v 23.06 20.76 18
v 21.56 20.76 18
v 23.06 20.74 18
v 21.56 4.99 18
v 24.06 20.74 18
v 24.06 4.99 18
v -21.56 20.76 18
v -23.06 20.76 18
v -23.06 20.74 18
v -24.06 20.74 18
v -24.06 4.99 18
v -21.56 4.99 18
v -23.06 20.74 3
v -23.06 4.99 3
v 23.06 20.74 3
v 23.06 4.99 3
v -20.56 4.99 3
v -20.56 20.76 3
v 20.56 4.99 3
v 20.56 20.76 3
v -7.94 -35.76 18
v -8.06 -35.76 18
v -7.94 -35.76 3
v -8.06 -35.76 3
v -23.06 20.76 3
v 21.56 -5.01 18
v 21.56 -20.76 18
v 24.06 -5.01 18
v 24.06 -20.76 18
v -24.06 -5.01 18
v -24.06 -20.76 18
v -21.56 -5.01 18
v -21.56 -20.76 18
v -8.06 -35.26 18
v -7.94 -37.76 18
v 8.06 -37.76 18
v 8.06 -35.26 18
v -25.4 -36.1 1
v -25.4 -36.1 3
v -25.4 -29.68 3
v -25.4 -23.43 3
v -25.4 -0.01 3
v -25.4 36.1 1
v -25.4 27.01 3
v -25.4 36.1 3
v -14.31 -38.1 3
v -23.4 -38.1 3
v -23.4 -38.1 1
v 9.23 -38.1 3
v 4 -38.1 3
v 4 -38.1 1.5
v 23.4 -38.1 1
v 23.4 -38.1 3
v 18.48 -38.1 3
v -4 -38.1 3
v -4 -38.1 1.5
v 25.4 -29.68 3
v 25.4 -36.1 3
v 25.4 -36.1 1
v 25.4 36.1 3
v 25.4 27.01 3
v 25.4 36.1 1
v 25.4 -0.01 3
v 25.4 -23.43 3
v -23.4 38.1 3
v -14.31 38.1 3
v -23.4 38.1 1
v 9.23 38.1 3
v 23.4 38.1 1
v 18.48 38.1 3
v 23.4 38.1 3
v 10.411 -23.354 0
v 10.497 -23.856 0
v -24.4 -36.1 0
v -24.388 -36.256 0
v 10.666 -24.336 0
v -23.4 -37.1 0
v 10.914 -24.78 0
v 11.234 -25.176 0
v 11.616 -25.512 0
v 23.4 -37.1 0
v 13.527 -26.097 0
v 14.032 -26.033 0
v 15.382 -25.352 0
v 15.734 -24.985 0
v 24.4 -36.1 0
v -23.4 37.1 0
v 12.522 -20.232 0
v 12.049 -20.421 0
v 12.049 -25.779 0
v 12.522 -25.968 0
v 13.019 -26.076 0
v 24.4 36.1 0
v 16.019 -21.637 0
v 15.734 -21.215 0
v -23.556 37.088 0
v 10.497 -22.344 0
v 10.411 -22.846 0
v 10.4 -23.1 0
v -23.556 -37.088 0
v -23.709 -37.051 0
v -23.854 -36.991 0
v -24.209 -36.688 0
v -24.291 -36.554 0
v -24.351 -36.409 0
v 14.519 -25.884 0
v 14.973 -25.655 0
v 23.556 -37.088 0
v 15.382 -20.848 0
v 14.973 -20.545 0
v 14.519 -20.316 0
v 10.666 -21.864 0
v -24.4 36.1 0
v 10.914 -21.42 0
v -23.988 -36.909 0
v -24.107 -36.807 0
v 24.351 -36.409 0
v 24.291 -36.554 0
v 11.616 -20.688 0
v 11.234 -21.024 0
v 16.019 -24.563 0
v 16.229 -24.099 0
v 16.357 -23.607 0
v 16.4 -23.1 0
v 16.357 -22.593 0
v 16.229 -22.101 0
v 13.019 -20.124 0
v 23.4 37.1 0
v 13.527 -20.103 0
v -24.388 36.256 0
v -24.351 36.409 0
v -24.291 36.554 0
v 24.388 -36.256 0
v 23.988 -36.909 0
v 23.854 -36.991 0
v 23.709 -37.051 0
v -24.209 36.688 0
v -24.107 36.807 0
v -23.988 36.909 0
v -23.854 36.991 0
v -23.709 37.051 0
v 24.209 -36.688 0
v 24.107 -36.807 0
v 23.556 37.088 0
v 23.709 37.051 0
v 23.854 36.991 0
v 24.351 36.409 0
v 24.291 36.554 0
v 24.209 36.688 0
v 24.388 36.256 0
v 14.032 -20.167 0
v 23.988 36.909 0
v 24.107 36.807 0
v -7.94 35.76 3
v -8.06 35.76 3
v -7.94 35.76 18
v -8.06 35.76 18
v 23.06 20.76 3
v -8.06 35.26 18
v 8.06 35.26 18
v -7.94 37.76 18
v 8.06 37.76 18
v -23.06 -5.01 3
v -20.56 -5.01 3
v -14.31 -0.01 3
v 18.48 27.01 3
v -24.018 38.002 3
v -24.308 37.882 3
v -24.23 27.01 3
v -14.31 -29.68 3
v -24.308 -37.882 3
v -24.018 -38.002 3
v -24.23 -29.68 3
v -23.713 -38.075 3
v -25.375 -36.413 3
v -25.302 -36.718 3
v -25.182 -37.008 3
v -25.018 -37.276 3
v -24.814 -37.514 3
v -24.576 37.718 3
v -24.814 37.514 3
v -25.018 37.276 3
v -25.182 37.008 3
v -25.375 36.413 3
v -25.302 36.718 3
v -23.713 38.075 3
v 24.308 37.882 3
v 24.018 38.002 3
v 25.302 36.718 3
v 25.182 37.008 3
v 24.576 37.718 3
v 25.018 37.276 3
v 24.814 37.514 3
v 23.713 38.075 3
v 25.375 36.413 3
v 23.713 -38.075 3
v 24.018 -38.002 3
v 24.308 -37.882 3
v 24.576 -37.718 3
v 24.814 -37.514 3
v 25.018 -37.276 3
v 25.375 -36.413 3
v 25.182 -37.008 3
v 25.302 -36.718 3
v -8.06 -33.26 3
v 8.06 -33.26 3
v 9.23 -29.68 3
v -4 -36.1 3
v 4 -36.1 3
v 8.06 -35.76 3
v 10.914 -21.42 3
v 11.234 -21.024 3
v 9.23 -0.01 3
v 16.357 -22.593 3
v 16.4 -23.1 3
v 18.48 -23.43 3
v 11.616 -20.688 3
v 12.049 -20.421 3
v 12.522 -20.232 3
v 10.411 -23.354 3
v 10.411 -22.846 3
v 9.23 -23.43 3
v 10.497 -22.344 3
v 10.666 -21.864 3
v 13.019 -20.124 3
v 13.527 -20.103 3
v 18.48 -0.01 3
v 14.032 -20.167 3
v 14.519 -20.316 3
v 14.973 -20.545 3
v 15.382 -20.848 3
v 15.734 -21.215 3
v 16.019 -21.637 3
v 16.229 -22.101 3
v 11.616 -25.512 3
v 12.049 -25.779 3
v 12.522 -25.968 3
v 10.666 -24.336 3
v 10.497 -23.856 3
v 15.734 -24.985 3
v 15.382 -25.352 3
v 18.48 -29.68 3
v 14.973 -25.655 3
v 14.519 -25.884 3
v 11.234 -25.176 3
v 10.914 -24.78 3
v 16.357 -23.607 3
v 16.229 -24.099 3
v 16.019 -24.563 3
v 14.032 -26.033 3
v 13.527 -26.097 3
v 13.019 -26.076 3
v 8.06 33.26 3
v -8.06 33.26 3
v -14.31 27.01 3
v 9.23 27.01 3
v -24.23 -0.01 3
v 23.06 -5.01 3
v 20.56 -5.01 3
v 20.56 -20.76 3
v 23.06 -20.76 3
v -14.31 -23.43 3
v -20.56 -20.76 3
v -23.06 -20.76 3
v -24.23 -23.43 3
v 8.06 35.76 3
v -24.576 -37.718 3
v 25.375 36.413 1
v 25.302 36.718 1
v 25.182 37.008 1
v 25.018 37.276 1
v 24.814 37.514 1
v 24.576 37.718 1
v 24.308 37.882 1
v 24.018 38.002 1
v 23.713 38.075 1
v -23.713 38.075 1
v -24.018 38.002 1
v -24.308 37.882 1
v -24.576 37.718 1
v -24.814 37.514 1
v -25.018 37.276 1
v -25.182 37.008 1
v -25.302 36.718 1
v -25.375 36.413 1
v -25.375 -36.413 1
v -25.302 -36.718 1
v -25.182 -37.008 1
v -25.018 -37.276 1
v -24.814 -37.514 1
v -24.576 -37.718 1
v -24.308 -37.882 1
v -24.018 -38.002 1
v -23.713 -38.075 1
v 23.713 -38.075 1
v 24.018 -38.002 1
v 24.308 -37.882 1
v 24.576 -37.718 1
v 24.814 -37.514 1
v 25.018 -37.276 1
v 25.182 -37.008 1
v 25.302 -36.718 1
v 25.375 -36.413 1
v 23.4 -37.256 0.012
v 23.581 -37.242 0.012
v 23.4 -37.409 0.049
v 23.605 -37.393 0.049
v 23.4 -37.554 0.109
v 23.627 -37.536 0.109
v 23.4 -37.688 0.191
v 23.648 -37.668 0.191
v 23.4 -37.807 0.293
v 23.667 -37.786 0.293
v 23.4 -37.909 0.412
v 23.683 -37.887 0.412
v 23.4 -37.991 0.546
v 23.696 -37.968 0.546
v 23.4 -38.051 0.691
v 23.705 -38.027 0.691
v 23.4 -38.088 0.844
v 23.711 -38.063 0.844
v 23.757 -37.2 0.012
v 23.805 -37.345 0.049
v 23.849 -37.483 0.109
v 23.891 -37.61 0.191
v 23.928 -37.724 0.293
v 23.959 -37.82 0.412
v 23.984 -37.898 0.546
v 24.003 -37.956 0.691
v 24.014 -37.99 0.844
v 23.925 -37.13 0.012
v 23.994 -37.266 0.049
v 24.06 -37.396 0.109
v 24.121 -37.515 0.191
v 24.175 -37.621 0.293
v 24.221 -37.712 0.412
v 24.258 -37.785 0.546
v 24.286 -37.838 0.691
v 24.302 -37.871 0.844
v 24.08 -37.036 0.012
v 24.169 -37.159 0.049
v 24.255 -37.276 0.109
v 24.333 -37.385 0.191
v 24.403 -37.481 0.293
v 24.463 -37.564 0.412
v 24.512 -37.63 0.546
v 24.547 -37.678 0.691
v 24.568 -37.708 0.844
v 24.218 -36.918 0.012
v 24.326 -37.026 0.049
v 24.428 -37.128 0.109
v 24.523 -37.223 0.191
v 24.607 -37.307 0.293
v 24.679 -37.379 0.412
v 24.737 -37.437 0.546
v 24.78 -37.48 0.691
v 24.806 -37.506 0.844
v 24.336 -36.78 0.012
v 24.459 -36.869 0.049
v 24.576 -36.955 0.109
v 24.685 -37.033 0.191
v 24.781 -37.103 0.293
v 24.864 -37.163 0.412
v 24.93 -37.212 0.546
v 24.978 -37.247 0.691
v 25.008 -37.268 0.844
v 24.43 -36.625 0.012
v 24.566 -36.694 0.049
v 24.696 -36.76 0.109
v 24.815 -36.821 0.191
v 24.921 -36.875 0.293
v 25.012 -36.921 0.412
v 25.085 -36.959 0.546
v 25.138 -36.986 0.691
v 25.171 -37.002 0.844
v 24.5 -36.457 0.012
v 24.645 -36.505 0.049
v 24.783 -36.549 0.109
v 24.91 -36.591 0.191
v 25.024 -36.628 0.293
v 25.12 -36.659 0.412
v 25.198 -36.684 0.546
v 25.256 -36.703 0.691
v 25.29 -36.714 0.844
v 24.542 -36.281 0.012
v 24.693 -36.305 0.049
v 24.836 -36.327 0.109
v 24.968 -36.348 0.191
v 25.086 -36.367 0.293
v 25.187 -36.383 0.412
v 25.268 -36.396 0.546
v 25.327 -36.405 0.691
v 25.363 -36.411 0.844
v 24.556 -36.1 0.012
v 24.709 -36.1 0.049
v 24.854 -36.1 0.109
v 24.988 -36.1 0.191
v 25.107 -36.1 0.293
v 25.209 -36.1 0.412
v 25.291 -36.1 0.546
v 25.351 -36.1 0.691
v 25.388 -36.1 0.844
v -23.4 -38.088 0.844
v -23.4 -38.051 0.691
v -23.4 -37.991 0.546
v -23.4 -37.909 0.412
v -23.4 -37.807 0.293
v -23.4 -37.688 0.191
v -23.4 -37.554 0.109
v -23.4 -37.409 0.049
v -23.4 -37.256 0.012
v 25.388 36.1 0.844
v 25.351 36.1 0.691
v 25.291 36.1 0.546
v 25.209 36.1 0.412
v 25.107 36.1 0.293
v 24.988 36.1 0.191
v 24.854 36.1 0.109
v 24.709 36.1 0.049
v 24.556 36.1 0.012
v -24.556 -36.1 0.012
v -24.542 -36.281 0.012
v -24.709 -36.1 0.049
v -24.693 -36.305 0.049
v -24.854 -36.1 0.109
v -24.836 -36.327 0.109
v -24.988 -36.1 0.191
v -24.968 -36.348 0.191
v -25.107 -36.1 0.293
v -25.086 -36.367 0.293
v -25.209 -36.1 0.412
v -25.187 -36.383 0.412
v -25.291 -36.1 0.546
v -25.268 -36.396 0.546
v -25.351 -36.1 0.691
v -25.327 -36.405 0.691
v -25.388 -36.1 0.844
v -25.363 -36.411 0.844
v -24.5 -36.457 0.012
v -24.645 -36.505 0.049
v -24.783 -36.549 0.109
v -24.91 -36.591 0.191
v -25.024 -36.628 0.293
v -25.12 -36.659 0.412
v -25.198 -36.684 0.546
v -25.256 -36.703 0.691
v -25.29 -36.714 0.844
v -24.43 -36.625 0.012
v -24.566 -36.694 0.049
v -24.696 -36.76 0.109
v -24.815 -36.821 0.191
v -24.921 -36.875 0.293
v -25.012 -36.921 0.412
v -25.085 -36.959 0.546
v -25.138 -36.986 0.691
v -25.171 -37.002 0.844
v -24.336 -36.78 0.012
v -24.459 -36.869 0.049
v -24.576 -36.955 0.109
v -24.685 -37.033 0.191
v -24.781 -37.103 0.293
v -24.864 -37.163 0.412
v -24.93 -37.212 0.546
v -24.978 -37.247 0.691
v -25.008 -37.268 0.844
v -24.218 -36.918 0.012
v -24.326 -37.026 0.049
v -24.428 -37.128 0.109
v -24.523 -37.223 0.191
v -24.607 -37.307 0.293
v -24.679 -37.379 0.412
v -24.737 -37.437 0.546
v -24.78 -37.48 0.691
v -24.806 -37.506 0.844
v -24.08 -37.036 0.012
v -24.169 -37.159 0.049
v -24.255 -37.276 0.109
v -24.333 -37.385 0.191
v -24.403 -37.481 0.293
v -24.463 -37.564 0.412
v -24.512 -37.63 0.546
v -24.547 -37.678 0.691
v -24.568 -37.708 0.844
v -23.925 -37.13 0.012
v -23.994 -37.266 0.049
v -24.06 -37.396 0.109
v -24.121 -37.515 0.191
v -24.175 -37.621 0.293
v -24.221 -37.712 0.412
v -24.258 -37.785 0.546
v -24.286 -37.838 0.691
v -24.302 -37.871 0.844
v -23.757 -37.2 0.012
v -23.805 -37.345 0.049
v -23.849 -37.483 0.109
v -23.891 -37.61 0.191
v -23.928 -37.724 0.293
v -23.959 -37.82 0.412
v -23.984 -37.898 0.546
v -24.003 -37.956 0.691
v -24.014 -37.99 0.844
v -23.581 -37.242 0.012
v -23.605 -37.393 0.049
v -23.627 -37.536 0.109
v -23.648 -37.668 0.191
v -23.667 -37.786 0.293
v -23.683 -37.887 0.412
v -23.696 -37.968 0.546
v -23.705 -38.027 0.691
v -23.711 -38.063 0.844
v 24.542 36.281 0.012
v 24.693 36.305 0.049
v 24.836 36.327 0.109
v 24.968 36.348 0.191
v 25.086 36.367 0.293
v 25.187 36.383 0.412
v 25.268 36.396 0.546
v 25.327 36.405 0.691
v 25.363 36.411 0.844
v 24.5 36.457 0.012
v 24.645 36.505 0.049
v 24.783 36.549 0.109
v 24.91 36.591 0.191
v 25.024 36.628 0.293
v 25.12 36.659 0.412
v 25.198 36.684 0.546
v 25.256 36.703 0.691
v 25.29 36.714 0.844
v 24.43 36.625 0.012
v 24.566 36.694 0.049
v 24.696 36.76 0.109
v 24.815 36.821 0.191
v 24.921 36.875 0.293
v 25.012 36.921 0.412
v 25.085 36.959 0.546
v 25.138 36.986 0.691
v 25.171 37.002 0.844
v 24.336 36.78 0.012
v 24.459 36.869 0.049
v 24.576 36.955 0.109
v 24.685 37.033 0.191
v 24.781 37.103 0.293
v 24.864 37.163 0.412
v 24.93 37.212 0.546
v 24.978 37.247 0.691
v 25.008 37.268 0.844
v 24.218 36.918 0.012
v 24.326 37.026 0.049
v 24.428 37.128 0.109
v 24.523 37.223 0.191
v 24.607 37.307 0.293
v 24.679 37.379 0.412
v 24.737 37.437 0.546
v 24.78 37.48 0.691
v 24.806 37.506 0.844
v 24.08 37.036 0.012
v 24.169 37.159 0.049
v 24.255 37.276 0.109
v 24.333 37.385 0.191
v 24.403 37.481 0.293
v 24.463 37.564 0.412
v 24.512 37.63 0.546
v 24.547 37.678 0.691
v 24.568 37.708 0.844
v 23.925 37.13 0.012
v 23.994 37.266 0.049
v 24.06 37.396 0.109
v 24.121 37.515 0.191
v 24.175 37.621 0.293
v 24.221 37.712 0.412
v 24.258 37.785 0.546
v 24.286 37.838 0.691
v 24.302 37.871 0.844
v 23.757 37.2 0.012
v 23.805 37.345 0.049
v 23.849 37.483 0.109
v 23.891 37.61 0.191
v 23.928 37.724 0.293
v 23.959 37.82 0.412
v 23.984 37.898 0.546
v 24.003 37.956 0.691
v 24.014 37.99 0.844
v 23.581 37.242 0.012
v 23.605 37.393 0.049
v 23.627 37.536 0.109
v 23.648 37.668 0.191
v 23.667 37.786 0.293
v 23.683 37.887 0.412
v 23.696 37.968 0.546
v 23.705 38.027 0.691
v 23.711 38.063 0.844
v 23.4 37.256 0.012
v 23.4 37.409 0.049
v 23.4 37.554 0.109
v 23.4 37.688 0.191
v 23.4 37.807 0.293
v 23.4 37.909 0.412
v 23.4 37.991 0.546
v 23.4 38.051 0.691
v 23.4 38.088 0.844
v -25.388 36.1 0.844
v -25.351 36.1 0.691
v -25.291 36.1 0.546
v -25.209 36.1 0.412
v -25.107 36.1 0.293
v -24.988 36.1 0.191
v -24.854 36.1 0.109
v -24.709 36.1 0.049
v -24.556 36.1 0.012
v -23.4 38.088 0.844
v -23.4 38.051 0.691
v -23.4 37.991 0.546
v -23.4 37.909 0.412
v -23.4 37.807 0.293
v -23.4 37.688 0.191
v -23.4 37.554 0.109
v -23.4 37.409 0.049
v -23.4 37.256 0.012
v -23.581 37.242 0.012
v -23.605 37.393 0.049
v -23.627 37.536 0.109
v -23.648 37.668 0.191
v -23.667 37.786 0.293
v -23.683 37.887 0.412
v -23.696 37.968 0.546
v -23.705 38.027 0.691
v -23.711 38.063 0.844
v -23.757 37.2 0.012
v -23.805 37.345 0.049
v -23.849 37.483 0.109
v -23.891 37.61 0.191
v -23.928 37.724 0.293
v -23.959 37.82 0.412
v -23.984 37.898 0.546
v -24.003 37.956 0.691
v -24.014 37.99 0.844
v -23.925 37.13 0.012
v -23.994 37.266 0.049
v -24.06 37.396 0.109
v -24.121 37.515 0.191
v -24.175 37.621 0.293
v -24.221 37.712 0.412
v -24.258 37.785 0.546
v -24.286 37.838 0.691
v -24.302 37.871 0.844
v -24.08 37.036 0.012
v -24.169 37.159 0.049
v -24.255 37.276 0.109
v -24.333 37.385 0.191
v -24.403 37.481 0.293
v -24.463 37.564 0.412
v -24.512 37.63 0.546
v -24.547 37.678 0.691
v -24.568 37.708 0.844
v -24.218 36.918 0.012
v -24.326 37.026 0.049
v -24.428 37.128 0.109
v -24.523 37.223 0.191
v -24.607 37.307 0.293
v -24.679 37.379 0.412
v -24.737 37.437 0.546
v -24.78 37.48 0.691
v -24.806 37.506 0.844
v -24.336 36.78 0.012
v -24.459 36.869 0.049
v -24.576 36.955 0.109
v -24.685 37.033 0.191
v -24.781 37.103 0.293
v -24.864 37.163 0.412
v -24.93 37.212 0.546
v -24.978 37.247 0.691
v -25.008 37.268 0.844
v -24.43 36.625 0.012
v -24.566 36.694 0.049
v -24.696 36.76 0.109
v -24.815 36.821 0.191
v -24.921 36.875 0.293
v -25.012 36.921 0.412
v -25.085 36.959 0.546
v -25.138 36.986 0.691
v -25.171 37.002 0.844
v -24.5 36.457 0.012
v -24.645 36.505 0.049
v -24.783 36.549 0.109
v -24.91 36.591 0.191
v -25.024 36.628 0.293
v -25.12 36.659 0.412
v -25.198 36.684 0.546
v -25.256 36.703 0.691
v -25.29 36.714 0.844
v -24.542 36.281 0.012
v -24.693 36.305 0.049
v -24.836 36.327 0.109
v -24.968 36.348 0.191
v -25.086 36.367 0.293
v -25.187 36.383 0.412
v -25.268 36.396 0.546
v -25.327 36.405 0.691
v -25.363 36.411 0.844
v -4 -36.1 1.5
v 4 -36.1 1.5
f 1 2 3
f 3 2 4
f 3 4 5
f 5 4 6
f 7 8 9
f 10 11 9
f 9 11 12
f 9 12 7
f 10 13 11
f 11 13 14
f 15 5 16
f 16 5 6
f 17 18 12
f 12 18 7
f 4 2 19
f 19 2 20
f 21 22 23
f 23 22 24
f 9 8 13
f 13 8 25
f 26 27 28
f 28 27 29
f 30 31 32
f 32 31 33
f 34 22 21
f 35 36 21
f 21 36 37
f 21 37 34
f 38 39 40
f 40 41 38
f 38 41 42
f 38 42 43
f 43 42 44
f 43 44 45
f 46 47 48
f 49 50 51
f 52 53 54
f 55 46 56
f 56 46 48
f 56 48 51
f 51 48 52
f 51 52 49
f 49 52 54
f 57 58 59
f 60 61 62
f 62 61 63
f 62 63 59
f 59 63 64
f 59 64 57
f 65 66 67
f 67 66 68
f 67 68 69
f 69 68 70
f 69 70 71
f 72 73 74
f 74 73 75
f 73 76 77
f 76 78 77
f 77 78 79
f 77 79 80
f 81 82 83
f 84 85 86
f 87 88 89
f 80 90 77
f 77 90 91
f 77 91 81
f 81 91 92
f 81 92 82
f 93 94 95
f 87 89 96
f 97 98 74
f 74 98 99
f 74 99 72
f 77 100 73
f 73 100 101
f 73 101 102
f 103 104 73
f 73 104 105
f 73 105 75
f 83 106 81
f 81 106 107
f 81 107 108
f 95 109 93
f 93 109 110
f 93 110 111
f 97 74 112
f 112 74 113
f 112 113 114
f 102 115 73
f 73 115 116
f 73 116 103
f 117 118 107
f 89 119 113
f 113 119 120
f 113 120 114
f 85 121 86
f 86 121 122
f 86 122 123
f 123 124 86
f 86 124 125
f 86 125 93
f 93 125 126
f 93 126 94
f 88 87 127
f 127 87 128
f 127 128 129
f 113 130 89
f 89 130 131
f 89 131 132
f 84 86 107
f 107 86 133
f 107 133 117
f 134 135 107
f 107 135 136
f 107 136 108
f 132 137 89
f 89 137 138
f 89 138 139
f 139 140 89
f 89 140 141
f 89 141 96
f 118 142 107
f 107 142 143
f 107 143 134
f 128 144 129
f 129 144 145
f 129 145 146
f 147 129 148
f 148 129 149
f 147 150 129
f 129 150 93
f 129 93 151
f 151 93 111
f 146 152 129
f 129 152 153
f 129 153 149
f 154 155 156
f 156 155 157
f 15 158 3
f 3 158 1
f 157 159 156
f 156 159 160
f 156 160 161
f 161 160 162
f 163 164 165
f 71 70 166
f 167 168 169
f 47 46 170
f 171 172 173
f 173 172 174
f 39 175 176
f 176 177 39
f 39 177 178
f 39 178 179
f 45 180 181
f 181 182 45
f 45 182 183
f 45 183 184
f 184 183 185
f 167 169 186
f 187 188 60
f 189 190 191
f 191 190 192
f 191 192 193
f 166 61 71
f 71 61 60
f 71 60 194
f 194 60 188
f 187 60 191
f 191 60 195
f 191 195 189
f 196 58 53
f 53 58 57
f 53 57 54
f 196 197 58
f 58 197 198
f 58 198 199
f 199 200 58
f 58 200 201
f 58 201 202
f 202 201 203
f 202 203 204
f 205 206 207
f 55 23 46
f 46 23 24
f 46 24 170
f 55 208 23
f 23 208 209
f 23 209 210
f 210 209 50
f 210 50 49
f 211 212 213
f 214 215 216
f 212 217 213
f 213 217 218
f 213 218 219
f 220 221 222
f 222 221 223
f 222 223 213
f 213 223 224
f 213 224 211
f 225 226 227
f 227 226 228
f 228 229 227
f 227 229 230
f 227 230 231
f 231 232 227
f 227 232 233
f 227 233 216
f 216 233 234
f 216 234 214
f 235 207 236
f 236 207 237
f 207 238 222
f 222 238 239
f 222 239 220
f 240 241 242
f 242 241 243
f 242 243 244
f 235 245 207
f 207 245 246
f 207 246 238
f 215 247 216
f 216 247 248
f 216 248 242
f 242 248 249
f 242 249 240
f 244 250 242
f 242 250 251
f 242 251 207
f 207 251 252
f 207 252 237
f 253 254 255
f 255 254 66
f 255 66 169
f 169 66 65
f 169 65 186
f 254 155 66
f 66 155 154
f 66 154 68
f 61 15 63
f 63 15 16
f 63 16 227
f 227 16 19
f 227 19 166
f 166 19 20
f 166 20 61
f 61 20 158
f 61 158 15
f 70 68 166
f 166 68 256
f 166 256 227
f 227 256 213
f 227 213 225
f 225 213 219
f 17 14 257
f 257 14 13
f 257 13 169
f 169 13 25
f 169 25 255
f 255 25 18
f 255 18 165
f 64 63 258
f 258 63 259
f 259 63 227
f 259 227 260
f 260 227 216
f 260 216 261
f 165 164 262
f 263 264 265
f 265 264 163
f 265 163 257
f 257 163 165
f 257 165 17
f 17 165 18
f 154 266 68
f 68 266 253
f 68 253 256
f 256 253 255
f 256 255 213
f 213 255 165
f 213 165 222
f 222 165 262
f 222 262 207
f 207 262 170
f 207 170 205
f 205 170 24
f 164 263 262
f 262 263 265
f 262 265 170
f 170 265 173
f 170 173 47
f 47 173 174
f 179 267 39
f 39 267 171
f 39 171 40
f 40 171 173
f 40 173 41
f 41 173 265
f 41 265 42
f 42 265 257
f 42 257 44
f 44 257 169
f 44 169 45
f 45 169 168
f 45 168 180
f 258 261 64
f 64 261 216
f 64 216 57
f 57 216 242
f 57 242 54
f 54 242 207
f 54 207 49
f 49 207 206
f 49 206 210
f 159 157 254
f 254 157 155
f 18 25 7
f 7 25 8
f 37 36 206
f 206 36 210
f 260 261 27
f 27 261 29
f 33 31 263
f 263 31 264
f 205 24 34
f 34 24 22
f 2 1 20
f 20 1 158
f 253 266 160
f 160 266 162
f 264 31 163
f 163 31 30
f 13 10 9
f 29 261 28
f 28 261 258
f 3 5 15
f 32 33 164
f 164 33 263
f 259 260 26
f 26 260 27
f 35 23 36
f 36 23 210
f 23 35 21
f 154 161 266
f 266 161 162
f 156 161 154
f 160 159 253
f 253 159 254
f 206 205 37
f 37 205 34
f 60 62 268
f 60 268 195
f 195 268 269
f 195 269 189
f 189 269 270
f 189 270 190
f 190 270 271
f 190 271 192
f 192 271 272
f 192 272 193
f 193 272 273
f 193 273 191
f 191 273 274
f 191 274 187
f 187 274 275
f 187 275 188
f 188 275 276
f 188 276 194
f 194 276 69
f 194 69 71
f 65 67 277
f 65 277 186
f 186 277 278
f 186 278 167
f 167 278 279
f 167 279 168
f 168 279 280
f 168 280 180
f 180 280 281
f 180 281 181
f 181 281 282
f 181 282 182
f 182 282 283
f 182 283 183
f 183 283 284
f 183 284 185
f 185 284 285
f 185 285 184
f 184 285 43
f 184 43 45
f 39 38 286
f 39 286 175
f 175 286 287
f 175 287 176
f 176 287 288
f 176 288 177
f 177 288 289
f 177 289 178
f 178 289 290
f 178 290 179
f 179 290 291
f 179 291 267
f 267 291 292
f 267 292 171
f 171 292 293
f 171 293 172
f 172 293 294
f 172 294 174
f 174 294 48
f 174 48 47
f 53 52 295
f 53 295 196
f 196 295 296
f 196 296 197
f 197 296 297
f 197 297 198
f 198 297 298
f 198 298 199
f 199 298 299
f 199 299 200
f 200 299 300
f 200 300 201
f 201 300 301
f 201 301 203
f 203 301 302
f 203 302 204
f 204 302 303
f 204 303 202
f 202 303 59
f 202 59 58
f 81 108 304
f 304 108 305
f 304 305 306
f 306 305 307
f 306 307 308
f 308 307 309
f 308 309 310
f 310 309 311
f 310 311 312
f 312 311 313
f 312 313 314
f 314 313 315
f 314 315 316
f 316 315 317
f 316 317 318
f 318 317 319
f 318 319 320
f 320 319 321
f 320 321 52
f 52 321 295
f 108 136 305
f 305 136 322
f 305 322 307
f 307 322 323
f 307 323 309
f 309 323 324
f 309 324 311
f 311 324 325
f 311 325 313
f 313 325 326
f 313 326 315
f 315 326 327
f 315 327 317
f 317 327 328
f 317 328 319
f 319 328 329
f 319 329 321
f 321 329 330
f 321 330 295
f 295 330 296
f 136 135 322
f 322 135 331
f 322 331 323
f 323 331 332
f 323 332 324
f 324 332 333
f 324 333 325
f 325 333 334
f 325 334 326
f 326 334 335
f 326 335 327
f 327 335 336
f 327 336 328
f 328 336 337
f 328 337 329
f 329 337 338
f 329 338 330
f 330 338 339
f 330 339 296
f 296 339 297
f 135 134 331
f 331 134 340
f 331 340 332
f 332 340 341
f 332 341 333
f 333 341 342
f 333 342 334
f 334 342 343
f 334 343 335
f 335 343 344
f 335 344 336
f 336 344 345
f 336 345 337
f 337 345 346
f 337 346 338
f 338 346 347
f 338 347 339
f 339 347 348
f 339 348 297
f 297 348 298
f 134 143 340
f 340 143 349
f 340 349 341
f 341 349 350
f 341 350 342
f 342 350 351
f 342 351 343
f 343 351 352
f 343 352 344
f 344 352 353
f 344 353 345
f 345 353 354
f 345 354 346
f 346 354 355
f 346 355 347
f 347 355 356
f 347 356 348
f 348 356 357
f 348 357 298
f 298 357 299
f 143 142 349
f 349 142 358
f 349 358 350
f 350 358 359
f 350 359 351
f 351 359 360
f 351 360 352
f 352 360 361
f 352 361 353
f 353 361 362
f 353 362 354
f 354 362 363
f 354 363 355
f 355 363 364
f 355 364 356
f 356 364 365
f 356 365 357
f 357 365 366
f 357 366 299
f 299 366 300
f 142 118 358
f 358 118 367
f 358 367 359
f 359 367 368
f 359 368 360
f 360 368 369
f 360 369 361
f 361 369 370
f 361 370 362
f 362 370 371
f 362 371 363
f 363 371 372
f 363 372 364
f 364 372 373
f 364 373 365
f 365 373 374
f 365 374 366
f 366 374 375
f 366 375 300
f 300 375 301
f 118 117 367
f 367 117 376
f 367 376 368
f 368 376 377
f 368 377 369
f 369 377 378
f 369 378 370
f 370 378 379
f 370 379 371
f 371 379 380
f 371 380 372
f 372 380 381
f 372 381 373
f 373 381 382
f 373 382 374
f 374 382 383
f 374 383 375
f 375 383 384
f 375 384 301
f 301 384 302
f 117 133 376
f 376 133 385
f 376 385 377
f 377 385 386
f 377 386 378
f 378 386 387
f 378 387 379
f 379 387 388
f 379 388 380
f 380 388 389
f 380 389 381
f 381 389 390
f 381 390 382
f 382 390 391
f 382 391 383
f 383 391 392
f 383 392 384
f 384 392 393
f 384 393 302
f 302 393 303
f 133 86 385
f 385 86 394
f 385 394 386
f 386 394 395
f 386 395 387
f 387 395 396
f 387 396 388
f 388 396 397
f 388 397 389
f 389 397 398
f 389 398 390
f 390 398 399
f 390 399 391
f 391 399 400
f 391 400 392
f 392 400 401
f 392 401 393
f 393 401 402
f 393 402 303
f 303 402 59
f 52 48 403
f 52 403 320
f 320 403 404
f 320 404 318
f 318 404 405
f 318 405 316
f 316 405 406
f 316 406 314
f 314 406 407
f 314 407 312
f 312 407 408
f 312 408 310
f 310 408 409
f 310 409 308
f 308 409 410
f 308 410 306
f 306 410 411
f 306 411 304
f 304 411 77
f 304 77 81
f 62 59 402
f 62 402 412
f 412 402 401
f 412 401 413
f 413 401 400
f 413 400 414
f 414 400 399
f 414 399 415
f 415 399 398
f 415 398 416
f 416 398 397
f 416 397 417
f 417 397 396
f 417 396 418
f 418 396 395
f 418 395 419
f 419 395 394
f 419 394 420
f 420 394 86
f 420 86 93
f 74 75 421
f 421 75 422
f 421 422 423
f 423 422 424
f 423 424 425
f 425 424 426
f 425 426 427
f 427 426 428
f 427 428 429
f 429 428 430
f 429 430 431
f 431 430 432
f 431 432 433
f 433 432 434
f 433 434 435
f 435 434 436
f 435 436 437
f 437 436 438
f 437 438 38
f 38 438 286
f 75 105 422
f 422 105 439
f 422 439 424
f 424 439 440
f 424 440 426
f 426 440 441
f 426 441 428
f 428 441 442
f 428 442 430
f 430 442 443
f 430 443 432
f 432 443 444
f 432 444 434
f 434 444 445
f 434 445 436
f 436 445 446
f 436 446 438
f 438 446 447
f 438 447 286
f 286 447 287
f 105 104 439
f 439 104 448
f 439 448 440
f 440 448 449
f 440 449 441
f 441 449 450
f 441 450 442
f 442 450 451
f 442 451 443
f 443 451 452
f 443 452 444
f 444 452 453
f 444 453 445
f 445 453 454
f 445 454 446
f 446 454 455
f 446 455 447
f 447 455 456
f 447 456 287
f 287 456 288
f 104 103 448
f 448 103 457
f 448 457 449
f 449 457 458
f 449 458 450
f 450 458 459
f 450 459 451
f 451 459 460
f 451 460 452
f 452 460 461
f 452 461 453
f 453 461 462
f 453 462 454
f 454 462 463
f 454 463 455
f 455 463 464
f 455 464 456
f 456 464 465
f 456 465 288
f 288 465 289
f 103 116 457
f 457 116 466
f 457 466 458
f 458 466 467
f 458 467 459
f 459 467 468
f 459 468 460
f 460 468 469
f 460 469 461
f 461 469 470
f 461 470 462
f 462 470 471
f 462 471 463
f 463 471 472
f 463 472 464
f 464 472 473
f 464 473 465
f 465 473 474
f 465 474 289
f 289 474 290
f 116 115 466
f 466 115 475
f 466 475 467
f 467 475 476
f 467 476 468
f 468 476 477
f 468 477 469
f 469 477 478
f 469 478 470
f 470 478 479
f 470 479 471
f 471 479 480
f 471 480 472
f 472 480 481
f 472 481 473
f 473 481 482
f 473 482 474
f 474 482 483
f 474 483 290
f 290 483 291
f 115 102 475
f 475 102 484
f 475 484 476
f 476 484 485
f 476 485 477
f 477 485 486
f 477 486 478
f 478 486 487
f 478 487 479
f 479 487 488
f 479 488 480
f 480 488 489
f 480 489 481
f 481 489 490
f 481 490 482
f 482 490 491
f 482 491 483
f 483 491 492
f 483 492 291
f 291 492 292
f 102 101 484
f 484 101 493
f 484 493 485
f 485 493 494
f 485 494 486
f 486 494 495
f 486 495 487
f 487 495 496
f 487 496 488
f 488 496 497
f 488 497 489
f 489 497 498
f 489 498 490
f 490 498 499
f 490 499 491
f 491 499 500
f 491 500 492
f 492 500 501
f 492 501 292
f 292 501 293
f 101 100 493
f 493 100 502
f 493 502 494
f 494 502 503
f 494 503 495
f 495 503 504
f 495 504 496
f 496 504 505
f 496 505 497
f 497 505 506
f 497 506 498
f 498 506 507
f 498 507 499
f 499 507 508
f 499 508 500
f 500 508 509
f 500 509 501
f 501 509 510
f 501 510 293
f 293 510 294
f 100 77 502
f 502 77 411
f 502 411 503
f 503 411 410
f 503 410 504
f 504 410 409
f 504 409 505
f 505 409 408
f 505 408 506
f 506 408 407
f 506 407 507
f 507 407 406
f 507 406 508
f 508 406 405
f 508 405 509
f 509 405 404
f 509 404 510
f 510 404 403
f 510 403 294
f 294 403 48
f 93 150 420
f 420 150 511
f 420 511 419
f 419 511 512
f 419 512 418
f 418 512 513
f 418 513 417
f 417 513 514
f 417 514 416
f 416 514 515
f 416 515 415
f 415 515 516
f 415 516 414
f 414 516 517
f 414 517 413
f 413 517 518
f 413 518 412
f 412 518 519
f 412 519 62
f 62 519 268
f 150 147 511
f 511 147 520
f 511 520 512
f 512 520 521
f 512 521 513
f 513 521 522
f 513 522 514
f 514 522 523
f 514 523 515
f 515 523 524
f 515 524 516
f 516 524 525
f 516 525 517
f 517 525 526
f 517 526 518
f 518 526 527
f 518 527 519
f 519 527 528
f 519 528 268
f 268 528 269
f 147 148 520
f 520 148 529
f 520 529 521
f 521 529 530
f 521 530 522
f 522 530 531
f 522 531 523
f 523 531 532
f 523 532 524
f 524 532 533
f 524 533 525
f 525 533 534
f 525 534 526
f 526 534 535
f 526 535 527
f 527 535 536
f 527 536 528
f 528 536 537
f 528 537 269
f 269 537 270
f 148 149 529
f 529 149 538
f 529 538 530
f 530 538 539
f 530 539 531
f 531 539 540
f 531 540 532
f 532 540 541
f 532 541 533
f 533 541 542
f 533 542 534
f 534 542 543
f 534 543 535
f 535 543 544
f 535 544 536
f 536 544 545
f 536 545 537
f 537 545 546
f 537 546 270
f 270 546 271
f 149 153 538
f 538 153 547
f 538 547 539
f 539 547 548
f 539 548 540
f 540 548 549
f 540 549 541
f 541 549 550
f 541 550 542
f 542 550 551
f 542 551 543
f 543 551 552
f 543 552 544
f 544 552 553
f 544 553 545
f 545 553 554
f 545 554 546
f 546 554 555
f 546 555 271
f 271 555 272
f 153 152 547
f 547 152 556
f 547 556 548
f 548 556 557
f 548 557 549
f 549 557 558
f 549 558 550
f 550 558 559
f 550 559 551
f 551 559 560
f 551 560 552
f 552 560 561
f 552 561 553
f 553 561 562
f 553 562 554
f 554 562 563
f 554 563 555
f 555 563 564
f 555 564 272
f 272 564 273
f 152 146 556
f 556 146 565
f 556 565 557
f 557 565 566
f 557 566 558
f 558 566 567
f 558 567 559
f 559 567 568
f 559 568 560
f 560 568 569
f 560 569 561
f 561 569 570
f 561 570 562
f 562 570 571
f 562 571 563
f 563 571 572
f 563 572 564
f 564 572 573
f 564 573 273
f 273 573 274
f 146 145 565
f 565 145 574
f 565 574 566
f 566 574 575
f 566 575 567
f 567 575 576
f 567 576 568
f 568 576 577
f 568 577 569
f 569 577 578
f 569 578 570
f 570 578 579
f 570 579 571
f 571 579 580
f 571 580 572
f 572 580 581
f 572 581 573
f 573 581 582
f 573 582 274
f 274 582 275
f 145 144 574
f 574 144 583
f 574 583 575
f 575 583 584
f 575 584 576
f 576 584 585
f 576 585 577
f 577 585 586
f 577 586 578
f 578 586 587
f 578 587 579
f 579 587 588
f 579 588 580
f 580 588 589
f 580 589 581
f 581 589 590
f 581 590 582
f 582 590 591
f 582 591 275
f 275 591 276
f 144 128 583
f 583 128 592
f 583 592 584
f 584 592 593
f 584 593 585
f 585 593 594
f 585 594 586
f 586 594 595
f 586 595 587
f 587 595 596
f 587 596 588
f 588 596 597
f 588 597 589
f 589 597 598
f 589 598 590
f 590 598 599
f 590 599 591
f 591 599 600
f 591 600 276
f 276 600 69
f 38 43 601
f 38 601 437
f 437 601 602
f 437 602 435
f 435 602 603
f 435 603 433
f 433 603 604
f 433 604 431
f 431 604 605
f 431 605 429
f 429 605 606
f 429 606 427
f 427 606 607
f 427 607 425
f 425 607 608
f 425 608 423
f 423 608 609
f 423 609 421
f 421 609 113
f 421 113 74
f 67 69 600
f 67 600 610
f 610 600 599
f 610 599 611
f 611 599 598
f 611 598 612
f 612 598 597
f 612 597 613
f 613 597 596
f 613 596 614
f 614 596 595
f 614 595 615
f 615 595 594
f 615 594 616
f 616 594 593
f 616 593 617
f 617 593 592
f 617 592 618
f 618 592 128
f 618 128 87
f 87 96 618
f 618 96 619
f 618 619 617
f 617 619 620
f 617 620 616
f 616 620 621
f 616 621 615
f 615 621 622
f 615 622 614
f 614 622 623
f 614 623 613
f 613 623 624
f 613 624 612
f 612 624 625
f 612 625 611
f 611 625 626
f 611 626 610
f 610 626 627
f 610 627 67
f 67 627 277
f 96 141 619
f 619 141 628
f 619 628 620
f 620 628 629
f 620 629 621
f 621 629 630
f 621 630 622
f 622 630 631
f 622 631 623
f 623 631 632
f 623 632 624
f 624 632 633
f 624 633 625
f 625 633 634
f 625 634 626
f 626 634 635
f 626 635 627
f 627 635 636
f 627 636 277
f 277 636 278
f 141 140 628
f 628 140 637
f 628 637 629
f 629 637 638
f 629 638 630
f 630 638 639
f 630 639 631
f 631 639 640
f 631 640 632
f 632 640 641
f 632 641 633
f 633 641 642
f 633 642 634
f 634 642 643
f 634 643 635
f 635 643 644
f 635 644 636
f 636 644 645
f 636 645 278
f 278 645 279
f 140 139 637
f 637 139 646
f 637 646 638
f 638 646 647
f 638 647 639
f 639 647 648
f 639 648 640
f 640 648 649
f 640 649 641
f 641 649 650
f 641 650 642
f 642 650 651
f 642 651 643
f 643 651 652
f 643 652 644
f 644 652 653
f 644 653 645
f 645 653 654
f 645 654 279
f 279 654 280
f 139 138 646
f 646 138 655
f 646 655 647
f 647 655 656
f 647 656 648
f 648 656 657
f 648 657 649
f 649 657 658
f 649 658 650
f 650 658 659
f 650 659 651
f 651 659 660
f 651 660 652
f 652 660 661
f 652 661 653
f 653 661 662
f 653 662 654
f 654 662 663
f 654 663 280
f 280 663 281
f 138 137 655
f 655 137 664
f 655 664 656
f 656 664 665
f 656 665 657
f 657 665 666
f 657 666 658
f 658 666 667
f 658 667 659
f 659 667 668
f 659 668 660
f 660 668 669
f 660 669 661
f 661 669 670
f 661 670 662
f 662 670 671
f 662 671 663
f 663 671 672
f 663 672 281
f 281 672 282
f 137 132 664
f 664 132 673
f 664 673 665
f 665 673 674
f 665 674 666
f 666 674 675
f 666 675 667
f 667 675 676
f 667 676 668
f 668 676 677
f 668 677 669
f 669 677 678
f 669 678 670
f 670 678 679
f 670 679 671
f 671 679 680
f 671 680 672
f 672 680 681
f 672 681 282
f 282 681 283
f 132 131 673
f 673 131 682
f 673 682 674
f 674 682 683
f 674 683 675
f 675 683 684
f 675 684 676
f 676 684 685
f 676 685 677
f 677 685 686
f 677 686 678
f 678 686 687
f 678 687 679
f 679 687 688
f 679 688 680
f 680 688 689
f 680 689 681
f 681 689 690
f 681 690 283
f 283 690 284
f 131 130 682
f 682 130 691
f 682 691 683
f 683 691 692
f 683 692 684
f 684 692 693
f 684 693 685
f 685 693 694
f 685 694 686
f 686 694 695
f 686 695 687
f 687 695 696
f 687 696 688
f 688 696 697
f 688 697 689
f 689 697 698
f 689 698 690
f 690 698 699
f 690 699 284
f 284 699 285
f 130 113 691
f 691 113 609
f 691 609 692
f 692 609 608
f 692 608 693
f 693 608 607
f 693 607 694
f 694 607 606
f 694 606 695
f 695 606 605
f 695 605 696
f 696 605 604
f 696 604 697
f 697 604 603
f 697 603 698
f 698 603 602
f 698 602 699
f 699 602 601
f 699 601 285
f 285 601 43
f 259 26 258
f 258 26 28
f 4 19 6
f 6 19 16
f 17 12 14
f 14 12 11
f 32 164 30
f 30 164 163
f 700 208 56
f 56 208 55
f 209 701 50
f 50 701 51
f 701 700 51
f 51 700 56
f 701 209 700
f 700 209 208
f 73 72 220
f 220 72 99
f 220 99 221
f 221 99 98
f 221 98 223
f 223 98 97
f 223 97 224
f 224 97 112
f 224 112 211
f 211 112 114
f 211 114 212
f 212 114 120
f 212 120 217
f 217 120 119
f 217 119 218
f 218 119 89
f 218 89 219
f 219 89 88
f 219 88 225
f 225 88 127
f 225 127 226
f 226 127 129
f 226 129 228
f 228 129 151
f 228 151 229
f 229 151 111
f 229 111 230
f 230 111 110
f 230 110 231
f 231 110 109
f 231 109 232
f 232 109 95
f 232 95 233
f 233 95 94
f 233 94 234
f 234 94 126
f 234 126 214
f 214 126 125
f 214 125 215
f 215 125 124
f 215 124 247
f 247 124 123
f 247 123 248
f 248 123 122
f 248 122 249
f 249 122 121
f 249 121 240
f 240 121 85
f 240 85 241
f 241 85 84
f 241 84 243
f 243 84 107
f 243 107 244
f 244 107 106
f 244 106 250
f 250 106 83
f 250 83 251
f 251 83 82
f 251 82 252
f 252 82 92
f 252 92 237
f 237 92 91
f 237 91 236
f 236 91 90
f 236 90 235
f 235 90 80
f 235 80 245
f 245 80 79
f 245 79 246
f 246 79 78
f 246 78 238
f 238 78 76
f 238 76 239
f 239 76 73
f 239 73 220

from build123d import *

# Parameters (mm, degrees)
CROQUIS1_W              = 50.8
CROQUIS1_H              = 76.2
SALIENTE_EXTRUIR1_DEPTH = 18
CROQUIS2_W              = 50.8
CROQUIS2_H              = 76.2
CROQUIS2_W_2            = 46.12
CROQUIS2_H_2            = 71.52
CROQUIS2_W_3            = 38.8
CROQUIS2_H_3            = 64.2
CORTAR_EXTRUIR1_DEPTH   = 15
CORTAR_EXTRUIR8_DEPTH   = 15
SALIENTE_EXTRUIR3_DEPTH = 41.5
CORTAR_EXTRUIR9_DEPTH   = 51.5
CORTAR_EXTRUIR10_DEPTH  = 51.5
SALIENTE_EXTRUIR4_DEPTH = 16
CORTAR_EXTRUIR11_DEPTH  = 16.5
REDONDEO3_R             = 2
REDONDEO4_R             = 1
CROQUIS15_W             = 48.12
CROQUIS15_H             = 10
CORTAR_EXTRUIR12_DEPTH  = 15
CROQUIS16_W             = 8
CROQUIS16_H             = 1.5
CORTAR_EXTRUIR13_DEPTH  = 2
CROQUIS17_R             = 3
CORTAR_EXTRUIR14_DEPTH  = 10


with BuildPart() as part:
    # Croquis1 → Saliente-Extruir1 (new body)
    with BuildSketch(Plane.XY):
        Rectangle(CROQUIS1_W, CROQUIS1_H)
    extrude(amount=SALIENTE_EXTRUIR1_DEPTH)

    # Croquis2 → Cortar-Extruir1 (cut)
    # profile 1 of 2: a face of its own
    with BuildSketch(Plane.XY.offset(18)):
        Rectangle(CROQUIS2_W, CROQUIS2_H)
        Rectangle(CROQUIS2_W_2, CROQUIS2_H_2, mode=Mode.SUBTRACT)
    # profile 2 of 2: a face of its own
    with BuildSketch(Plane.XY.offset(18)):
        Rectangle(CROQUIS2_W_3, CROQUIS2_H_3)
    extrude(amount=-CORTAR_EXTRUIR1_DEPTH, mode=Mode.SUBTRACT)

    # Croquis6 → Cortar-Extruir8 (cut)
    with BuildSketch(Plane.XY.offset(18)):
        Polygon((-23.06, 35.76), (-8.06, 35.76), (-8.06, 32.1), (-19.4, 32.1), (-19.4, 20.76), (-23.06, 20.76), align=None)
        Polygon((23.06, 35.76), (8.06, 35.76), (8.06, 32.1), (19.4, 32.1), (19.4, 20.76), (23.06, 20.76), align=None)
        Polygon((-23.06, -35.76), (-23.06, -20.76), (-19.4, -20.76), (-19.4, -32.1), (-8.06, -32.1), (-8.06, -35.76), align=None)
        Polygon((23.06, -35.76), (8.06, -35.76), (8.06, -32.1), (19.4, -32.1), (19.4, -20.76), (23.06, -20.76), align=None)
    extrude(amount=-CORTAR_EXTRUIR8_DEPTH, mode=Mode.SUBTRACT)

    # Croquis10 → Saliente-Extruir3 (add)
    with BuildSketch(Plane(origin=(0, -20.76, 0), x_dir=(-1, 0, 0), z_dir=(0, -1, 0))):
        Polygon((23.06, -18), (24.06, -18), (23.06, -3), align=None)
        Polygon((-23.06, -18), (-24.06, -18), (-23.06, -3), align=None)
    extrude(amount=-SALIENTE_EXTRUIR3_DEPTH)

    # Croquis11 → Cortar-Extruir9 (cut)
    with BuildSketch(Plane.XZ.offset(20.76)):
        Polygon((-19.4, 18), (-21.56, 18), (-20.56, 3), (-19.4, 3), align=None)
    extrude(amount=-CORTAR_EXTRUIR9_DEPTH, mode=Mode.SUBTRACT)

    # Croquis12 → Cortar-Extruir10 (cut)
    with BuildSketch(Plane.XZ.offset(20.76)):
        Polygon((19.4, 18), (19.4, 3), (20.56, 3), (21.56, 18), align=None)
    extrude(amount=-CORTAR_EXTRUIR10_DEPTH, mode=Mode.SUBTRACT)

    # Croquis13 → Saliente-Extruir4 (add)
    with BuildSketch(Plane(origin=(8.06, 0, 0), x_dir=(0, 0, -1), z_dir=(1, 0, 0))):
        Polygon((-18, -35.76), (-18, -37.76), (-3, -35.76), align=None)
        Polygon((-18, 35.76), (-18, 37.76), (-3, 35.76), align=None)
    extrude(amount=-SALIENTE_EXTRUIR4_DEPTH)

    # Croquis14 → Cortar-Extruir11 (cut)
    with BuildSketch(Plane(origin=(8.06, 0, 0), x_dir=(0, 0, -1), z_dir=(1, 0, 0))):
        Polygon((-3, -32.1), (-18, -32.1), (-18, -35.26), (-3, -33.26), align=None)
        Polygon((-18, 32.1), (-18, 35.26), (-3, 33.26), (-3, 32.1), align=None)
    extrude(amount=-CORTAR_EXTRUIR11_DEPTH, mode=Mode.SUBTRACT)

    # Redondeo3
    redondeo3_edges = [part.edges().sort_by_distance(p)[0] for p in [
        (-25.4, 38.1, 1.5),
        (25.4, 38.1, 1.5),
        (25.4, -38.1, 1.5),
        (-25.4, -38.1, 1.5),
    ]]
    fillet(redondeo3_edges, radius=REDONDEO3_R)

    # Redondeo4
    redondeo4_edges = [part.edges().sort_by_distance(p)[0] for p in [
        (0, 38.1, 0),
        (-25.4, 0, 0),
        (25.4, 0, 0),
        (0, -38.1, 0),
        (24.814213562, -37.514213562, 0),
        (-24.814213562, -37.514213562, 0),
        (-24.814213562, 37.514213562, 0),
        (24.814213562, 37.514213562, 0),
    ]]
    fillet(redondeo4_edges, radius=REDONDEO4_R)

    # Croquis15 → Cortar-Extruir12 (cut)
    with BuildSketch(Plane.XY.offset(18)):
        with Locations((0, -0.01)):
            Rectangle(CROQUIS15_W, CROQUIS15_H)
    extrude(amount=-CORTAR_EXTRUIR12_DEPTH, mode=Mode.SUBTRACT)

    # Croquis16 → Cortar-Extruir13 (cut)
    with BuildSketch(Plane.XZ.offset(38.1)):
        with Locations((0, 2.25)):
            Rectangle(CROQUIS16_W, CROQUIS16_H)
    extrude(amount=-CORTAR_EXTRUIR13_DEPTH, mode=Mode.SUBTRACT)

    # Croquis17 → Cortar-Extruir14 (cut)
    with BuildSketch(Plane.XY.offset(3)):
        with Locations((13.4, -23.1)):
            Circle(CROQUIS17_R)
    extrude(amount=-CORTAR_EXTRUIR14_DEPTH, mode=Mode.SUBTRACT)


solid = part.part
